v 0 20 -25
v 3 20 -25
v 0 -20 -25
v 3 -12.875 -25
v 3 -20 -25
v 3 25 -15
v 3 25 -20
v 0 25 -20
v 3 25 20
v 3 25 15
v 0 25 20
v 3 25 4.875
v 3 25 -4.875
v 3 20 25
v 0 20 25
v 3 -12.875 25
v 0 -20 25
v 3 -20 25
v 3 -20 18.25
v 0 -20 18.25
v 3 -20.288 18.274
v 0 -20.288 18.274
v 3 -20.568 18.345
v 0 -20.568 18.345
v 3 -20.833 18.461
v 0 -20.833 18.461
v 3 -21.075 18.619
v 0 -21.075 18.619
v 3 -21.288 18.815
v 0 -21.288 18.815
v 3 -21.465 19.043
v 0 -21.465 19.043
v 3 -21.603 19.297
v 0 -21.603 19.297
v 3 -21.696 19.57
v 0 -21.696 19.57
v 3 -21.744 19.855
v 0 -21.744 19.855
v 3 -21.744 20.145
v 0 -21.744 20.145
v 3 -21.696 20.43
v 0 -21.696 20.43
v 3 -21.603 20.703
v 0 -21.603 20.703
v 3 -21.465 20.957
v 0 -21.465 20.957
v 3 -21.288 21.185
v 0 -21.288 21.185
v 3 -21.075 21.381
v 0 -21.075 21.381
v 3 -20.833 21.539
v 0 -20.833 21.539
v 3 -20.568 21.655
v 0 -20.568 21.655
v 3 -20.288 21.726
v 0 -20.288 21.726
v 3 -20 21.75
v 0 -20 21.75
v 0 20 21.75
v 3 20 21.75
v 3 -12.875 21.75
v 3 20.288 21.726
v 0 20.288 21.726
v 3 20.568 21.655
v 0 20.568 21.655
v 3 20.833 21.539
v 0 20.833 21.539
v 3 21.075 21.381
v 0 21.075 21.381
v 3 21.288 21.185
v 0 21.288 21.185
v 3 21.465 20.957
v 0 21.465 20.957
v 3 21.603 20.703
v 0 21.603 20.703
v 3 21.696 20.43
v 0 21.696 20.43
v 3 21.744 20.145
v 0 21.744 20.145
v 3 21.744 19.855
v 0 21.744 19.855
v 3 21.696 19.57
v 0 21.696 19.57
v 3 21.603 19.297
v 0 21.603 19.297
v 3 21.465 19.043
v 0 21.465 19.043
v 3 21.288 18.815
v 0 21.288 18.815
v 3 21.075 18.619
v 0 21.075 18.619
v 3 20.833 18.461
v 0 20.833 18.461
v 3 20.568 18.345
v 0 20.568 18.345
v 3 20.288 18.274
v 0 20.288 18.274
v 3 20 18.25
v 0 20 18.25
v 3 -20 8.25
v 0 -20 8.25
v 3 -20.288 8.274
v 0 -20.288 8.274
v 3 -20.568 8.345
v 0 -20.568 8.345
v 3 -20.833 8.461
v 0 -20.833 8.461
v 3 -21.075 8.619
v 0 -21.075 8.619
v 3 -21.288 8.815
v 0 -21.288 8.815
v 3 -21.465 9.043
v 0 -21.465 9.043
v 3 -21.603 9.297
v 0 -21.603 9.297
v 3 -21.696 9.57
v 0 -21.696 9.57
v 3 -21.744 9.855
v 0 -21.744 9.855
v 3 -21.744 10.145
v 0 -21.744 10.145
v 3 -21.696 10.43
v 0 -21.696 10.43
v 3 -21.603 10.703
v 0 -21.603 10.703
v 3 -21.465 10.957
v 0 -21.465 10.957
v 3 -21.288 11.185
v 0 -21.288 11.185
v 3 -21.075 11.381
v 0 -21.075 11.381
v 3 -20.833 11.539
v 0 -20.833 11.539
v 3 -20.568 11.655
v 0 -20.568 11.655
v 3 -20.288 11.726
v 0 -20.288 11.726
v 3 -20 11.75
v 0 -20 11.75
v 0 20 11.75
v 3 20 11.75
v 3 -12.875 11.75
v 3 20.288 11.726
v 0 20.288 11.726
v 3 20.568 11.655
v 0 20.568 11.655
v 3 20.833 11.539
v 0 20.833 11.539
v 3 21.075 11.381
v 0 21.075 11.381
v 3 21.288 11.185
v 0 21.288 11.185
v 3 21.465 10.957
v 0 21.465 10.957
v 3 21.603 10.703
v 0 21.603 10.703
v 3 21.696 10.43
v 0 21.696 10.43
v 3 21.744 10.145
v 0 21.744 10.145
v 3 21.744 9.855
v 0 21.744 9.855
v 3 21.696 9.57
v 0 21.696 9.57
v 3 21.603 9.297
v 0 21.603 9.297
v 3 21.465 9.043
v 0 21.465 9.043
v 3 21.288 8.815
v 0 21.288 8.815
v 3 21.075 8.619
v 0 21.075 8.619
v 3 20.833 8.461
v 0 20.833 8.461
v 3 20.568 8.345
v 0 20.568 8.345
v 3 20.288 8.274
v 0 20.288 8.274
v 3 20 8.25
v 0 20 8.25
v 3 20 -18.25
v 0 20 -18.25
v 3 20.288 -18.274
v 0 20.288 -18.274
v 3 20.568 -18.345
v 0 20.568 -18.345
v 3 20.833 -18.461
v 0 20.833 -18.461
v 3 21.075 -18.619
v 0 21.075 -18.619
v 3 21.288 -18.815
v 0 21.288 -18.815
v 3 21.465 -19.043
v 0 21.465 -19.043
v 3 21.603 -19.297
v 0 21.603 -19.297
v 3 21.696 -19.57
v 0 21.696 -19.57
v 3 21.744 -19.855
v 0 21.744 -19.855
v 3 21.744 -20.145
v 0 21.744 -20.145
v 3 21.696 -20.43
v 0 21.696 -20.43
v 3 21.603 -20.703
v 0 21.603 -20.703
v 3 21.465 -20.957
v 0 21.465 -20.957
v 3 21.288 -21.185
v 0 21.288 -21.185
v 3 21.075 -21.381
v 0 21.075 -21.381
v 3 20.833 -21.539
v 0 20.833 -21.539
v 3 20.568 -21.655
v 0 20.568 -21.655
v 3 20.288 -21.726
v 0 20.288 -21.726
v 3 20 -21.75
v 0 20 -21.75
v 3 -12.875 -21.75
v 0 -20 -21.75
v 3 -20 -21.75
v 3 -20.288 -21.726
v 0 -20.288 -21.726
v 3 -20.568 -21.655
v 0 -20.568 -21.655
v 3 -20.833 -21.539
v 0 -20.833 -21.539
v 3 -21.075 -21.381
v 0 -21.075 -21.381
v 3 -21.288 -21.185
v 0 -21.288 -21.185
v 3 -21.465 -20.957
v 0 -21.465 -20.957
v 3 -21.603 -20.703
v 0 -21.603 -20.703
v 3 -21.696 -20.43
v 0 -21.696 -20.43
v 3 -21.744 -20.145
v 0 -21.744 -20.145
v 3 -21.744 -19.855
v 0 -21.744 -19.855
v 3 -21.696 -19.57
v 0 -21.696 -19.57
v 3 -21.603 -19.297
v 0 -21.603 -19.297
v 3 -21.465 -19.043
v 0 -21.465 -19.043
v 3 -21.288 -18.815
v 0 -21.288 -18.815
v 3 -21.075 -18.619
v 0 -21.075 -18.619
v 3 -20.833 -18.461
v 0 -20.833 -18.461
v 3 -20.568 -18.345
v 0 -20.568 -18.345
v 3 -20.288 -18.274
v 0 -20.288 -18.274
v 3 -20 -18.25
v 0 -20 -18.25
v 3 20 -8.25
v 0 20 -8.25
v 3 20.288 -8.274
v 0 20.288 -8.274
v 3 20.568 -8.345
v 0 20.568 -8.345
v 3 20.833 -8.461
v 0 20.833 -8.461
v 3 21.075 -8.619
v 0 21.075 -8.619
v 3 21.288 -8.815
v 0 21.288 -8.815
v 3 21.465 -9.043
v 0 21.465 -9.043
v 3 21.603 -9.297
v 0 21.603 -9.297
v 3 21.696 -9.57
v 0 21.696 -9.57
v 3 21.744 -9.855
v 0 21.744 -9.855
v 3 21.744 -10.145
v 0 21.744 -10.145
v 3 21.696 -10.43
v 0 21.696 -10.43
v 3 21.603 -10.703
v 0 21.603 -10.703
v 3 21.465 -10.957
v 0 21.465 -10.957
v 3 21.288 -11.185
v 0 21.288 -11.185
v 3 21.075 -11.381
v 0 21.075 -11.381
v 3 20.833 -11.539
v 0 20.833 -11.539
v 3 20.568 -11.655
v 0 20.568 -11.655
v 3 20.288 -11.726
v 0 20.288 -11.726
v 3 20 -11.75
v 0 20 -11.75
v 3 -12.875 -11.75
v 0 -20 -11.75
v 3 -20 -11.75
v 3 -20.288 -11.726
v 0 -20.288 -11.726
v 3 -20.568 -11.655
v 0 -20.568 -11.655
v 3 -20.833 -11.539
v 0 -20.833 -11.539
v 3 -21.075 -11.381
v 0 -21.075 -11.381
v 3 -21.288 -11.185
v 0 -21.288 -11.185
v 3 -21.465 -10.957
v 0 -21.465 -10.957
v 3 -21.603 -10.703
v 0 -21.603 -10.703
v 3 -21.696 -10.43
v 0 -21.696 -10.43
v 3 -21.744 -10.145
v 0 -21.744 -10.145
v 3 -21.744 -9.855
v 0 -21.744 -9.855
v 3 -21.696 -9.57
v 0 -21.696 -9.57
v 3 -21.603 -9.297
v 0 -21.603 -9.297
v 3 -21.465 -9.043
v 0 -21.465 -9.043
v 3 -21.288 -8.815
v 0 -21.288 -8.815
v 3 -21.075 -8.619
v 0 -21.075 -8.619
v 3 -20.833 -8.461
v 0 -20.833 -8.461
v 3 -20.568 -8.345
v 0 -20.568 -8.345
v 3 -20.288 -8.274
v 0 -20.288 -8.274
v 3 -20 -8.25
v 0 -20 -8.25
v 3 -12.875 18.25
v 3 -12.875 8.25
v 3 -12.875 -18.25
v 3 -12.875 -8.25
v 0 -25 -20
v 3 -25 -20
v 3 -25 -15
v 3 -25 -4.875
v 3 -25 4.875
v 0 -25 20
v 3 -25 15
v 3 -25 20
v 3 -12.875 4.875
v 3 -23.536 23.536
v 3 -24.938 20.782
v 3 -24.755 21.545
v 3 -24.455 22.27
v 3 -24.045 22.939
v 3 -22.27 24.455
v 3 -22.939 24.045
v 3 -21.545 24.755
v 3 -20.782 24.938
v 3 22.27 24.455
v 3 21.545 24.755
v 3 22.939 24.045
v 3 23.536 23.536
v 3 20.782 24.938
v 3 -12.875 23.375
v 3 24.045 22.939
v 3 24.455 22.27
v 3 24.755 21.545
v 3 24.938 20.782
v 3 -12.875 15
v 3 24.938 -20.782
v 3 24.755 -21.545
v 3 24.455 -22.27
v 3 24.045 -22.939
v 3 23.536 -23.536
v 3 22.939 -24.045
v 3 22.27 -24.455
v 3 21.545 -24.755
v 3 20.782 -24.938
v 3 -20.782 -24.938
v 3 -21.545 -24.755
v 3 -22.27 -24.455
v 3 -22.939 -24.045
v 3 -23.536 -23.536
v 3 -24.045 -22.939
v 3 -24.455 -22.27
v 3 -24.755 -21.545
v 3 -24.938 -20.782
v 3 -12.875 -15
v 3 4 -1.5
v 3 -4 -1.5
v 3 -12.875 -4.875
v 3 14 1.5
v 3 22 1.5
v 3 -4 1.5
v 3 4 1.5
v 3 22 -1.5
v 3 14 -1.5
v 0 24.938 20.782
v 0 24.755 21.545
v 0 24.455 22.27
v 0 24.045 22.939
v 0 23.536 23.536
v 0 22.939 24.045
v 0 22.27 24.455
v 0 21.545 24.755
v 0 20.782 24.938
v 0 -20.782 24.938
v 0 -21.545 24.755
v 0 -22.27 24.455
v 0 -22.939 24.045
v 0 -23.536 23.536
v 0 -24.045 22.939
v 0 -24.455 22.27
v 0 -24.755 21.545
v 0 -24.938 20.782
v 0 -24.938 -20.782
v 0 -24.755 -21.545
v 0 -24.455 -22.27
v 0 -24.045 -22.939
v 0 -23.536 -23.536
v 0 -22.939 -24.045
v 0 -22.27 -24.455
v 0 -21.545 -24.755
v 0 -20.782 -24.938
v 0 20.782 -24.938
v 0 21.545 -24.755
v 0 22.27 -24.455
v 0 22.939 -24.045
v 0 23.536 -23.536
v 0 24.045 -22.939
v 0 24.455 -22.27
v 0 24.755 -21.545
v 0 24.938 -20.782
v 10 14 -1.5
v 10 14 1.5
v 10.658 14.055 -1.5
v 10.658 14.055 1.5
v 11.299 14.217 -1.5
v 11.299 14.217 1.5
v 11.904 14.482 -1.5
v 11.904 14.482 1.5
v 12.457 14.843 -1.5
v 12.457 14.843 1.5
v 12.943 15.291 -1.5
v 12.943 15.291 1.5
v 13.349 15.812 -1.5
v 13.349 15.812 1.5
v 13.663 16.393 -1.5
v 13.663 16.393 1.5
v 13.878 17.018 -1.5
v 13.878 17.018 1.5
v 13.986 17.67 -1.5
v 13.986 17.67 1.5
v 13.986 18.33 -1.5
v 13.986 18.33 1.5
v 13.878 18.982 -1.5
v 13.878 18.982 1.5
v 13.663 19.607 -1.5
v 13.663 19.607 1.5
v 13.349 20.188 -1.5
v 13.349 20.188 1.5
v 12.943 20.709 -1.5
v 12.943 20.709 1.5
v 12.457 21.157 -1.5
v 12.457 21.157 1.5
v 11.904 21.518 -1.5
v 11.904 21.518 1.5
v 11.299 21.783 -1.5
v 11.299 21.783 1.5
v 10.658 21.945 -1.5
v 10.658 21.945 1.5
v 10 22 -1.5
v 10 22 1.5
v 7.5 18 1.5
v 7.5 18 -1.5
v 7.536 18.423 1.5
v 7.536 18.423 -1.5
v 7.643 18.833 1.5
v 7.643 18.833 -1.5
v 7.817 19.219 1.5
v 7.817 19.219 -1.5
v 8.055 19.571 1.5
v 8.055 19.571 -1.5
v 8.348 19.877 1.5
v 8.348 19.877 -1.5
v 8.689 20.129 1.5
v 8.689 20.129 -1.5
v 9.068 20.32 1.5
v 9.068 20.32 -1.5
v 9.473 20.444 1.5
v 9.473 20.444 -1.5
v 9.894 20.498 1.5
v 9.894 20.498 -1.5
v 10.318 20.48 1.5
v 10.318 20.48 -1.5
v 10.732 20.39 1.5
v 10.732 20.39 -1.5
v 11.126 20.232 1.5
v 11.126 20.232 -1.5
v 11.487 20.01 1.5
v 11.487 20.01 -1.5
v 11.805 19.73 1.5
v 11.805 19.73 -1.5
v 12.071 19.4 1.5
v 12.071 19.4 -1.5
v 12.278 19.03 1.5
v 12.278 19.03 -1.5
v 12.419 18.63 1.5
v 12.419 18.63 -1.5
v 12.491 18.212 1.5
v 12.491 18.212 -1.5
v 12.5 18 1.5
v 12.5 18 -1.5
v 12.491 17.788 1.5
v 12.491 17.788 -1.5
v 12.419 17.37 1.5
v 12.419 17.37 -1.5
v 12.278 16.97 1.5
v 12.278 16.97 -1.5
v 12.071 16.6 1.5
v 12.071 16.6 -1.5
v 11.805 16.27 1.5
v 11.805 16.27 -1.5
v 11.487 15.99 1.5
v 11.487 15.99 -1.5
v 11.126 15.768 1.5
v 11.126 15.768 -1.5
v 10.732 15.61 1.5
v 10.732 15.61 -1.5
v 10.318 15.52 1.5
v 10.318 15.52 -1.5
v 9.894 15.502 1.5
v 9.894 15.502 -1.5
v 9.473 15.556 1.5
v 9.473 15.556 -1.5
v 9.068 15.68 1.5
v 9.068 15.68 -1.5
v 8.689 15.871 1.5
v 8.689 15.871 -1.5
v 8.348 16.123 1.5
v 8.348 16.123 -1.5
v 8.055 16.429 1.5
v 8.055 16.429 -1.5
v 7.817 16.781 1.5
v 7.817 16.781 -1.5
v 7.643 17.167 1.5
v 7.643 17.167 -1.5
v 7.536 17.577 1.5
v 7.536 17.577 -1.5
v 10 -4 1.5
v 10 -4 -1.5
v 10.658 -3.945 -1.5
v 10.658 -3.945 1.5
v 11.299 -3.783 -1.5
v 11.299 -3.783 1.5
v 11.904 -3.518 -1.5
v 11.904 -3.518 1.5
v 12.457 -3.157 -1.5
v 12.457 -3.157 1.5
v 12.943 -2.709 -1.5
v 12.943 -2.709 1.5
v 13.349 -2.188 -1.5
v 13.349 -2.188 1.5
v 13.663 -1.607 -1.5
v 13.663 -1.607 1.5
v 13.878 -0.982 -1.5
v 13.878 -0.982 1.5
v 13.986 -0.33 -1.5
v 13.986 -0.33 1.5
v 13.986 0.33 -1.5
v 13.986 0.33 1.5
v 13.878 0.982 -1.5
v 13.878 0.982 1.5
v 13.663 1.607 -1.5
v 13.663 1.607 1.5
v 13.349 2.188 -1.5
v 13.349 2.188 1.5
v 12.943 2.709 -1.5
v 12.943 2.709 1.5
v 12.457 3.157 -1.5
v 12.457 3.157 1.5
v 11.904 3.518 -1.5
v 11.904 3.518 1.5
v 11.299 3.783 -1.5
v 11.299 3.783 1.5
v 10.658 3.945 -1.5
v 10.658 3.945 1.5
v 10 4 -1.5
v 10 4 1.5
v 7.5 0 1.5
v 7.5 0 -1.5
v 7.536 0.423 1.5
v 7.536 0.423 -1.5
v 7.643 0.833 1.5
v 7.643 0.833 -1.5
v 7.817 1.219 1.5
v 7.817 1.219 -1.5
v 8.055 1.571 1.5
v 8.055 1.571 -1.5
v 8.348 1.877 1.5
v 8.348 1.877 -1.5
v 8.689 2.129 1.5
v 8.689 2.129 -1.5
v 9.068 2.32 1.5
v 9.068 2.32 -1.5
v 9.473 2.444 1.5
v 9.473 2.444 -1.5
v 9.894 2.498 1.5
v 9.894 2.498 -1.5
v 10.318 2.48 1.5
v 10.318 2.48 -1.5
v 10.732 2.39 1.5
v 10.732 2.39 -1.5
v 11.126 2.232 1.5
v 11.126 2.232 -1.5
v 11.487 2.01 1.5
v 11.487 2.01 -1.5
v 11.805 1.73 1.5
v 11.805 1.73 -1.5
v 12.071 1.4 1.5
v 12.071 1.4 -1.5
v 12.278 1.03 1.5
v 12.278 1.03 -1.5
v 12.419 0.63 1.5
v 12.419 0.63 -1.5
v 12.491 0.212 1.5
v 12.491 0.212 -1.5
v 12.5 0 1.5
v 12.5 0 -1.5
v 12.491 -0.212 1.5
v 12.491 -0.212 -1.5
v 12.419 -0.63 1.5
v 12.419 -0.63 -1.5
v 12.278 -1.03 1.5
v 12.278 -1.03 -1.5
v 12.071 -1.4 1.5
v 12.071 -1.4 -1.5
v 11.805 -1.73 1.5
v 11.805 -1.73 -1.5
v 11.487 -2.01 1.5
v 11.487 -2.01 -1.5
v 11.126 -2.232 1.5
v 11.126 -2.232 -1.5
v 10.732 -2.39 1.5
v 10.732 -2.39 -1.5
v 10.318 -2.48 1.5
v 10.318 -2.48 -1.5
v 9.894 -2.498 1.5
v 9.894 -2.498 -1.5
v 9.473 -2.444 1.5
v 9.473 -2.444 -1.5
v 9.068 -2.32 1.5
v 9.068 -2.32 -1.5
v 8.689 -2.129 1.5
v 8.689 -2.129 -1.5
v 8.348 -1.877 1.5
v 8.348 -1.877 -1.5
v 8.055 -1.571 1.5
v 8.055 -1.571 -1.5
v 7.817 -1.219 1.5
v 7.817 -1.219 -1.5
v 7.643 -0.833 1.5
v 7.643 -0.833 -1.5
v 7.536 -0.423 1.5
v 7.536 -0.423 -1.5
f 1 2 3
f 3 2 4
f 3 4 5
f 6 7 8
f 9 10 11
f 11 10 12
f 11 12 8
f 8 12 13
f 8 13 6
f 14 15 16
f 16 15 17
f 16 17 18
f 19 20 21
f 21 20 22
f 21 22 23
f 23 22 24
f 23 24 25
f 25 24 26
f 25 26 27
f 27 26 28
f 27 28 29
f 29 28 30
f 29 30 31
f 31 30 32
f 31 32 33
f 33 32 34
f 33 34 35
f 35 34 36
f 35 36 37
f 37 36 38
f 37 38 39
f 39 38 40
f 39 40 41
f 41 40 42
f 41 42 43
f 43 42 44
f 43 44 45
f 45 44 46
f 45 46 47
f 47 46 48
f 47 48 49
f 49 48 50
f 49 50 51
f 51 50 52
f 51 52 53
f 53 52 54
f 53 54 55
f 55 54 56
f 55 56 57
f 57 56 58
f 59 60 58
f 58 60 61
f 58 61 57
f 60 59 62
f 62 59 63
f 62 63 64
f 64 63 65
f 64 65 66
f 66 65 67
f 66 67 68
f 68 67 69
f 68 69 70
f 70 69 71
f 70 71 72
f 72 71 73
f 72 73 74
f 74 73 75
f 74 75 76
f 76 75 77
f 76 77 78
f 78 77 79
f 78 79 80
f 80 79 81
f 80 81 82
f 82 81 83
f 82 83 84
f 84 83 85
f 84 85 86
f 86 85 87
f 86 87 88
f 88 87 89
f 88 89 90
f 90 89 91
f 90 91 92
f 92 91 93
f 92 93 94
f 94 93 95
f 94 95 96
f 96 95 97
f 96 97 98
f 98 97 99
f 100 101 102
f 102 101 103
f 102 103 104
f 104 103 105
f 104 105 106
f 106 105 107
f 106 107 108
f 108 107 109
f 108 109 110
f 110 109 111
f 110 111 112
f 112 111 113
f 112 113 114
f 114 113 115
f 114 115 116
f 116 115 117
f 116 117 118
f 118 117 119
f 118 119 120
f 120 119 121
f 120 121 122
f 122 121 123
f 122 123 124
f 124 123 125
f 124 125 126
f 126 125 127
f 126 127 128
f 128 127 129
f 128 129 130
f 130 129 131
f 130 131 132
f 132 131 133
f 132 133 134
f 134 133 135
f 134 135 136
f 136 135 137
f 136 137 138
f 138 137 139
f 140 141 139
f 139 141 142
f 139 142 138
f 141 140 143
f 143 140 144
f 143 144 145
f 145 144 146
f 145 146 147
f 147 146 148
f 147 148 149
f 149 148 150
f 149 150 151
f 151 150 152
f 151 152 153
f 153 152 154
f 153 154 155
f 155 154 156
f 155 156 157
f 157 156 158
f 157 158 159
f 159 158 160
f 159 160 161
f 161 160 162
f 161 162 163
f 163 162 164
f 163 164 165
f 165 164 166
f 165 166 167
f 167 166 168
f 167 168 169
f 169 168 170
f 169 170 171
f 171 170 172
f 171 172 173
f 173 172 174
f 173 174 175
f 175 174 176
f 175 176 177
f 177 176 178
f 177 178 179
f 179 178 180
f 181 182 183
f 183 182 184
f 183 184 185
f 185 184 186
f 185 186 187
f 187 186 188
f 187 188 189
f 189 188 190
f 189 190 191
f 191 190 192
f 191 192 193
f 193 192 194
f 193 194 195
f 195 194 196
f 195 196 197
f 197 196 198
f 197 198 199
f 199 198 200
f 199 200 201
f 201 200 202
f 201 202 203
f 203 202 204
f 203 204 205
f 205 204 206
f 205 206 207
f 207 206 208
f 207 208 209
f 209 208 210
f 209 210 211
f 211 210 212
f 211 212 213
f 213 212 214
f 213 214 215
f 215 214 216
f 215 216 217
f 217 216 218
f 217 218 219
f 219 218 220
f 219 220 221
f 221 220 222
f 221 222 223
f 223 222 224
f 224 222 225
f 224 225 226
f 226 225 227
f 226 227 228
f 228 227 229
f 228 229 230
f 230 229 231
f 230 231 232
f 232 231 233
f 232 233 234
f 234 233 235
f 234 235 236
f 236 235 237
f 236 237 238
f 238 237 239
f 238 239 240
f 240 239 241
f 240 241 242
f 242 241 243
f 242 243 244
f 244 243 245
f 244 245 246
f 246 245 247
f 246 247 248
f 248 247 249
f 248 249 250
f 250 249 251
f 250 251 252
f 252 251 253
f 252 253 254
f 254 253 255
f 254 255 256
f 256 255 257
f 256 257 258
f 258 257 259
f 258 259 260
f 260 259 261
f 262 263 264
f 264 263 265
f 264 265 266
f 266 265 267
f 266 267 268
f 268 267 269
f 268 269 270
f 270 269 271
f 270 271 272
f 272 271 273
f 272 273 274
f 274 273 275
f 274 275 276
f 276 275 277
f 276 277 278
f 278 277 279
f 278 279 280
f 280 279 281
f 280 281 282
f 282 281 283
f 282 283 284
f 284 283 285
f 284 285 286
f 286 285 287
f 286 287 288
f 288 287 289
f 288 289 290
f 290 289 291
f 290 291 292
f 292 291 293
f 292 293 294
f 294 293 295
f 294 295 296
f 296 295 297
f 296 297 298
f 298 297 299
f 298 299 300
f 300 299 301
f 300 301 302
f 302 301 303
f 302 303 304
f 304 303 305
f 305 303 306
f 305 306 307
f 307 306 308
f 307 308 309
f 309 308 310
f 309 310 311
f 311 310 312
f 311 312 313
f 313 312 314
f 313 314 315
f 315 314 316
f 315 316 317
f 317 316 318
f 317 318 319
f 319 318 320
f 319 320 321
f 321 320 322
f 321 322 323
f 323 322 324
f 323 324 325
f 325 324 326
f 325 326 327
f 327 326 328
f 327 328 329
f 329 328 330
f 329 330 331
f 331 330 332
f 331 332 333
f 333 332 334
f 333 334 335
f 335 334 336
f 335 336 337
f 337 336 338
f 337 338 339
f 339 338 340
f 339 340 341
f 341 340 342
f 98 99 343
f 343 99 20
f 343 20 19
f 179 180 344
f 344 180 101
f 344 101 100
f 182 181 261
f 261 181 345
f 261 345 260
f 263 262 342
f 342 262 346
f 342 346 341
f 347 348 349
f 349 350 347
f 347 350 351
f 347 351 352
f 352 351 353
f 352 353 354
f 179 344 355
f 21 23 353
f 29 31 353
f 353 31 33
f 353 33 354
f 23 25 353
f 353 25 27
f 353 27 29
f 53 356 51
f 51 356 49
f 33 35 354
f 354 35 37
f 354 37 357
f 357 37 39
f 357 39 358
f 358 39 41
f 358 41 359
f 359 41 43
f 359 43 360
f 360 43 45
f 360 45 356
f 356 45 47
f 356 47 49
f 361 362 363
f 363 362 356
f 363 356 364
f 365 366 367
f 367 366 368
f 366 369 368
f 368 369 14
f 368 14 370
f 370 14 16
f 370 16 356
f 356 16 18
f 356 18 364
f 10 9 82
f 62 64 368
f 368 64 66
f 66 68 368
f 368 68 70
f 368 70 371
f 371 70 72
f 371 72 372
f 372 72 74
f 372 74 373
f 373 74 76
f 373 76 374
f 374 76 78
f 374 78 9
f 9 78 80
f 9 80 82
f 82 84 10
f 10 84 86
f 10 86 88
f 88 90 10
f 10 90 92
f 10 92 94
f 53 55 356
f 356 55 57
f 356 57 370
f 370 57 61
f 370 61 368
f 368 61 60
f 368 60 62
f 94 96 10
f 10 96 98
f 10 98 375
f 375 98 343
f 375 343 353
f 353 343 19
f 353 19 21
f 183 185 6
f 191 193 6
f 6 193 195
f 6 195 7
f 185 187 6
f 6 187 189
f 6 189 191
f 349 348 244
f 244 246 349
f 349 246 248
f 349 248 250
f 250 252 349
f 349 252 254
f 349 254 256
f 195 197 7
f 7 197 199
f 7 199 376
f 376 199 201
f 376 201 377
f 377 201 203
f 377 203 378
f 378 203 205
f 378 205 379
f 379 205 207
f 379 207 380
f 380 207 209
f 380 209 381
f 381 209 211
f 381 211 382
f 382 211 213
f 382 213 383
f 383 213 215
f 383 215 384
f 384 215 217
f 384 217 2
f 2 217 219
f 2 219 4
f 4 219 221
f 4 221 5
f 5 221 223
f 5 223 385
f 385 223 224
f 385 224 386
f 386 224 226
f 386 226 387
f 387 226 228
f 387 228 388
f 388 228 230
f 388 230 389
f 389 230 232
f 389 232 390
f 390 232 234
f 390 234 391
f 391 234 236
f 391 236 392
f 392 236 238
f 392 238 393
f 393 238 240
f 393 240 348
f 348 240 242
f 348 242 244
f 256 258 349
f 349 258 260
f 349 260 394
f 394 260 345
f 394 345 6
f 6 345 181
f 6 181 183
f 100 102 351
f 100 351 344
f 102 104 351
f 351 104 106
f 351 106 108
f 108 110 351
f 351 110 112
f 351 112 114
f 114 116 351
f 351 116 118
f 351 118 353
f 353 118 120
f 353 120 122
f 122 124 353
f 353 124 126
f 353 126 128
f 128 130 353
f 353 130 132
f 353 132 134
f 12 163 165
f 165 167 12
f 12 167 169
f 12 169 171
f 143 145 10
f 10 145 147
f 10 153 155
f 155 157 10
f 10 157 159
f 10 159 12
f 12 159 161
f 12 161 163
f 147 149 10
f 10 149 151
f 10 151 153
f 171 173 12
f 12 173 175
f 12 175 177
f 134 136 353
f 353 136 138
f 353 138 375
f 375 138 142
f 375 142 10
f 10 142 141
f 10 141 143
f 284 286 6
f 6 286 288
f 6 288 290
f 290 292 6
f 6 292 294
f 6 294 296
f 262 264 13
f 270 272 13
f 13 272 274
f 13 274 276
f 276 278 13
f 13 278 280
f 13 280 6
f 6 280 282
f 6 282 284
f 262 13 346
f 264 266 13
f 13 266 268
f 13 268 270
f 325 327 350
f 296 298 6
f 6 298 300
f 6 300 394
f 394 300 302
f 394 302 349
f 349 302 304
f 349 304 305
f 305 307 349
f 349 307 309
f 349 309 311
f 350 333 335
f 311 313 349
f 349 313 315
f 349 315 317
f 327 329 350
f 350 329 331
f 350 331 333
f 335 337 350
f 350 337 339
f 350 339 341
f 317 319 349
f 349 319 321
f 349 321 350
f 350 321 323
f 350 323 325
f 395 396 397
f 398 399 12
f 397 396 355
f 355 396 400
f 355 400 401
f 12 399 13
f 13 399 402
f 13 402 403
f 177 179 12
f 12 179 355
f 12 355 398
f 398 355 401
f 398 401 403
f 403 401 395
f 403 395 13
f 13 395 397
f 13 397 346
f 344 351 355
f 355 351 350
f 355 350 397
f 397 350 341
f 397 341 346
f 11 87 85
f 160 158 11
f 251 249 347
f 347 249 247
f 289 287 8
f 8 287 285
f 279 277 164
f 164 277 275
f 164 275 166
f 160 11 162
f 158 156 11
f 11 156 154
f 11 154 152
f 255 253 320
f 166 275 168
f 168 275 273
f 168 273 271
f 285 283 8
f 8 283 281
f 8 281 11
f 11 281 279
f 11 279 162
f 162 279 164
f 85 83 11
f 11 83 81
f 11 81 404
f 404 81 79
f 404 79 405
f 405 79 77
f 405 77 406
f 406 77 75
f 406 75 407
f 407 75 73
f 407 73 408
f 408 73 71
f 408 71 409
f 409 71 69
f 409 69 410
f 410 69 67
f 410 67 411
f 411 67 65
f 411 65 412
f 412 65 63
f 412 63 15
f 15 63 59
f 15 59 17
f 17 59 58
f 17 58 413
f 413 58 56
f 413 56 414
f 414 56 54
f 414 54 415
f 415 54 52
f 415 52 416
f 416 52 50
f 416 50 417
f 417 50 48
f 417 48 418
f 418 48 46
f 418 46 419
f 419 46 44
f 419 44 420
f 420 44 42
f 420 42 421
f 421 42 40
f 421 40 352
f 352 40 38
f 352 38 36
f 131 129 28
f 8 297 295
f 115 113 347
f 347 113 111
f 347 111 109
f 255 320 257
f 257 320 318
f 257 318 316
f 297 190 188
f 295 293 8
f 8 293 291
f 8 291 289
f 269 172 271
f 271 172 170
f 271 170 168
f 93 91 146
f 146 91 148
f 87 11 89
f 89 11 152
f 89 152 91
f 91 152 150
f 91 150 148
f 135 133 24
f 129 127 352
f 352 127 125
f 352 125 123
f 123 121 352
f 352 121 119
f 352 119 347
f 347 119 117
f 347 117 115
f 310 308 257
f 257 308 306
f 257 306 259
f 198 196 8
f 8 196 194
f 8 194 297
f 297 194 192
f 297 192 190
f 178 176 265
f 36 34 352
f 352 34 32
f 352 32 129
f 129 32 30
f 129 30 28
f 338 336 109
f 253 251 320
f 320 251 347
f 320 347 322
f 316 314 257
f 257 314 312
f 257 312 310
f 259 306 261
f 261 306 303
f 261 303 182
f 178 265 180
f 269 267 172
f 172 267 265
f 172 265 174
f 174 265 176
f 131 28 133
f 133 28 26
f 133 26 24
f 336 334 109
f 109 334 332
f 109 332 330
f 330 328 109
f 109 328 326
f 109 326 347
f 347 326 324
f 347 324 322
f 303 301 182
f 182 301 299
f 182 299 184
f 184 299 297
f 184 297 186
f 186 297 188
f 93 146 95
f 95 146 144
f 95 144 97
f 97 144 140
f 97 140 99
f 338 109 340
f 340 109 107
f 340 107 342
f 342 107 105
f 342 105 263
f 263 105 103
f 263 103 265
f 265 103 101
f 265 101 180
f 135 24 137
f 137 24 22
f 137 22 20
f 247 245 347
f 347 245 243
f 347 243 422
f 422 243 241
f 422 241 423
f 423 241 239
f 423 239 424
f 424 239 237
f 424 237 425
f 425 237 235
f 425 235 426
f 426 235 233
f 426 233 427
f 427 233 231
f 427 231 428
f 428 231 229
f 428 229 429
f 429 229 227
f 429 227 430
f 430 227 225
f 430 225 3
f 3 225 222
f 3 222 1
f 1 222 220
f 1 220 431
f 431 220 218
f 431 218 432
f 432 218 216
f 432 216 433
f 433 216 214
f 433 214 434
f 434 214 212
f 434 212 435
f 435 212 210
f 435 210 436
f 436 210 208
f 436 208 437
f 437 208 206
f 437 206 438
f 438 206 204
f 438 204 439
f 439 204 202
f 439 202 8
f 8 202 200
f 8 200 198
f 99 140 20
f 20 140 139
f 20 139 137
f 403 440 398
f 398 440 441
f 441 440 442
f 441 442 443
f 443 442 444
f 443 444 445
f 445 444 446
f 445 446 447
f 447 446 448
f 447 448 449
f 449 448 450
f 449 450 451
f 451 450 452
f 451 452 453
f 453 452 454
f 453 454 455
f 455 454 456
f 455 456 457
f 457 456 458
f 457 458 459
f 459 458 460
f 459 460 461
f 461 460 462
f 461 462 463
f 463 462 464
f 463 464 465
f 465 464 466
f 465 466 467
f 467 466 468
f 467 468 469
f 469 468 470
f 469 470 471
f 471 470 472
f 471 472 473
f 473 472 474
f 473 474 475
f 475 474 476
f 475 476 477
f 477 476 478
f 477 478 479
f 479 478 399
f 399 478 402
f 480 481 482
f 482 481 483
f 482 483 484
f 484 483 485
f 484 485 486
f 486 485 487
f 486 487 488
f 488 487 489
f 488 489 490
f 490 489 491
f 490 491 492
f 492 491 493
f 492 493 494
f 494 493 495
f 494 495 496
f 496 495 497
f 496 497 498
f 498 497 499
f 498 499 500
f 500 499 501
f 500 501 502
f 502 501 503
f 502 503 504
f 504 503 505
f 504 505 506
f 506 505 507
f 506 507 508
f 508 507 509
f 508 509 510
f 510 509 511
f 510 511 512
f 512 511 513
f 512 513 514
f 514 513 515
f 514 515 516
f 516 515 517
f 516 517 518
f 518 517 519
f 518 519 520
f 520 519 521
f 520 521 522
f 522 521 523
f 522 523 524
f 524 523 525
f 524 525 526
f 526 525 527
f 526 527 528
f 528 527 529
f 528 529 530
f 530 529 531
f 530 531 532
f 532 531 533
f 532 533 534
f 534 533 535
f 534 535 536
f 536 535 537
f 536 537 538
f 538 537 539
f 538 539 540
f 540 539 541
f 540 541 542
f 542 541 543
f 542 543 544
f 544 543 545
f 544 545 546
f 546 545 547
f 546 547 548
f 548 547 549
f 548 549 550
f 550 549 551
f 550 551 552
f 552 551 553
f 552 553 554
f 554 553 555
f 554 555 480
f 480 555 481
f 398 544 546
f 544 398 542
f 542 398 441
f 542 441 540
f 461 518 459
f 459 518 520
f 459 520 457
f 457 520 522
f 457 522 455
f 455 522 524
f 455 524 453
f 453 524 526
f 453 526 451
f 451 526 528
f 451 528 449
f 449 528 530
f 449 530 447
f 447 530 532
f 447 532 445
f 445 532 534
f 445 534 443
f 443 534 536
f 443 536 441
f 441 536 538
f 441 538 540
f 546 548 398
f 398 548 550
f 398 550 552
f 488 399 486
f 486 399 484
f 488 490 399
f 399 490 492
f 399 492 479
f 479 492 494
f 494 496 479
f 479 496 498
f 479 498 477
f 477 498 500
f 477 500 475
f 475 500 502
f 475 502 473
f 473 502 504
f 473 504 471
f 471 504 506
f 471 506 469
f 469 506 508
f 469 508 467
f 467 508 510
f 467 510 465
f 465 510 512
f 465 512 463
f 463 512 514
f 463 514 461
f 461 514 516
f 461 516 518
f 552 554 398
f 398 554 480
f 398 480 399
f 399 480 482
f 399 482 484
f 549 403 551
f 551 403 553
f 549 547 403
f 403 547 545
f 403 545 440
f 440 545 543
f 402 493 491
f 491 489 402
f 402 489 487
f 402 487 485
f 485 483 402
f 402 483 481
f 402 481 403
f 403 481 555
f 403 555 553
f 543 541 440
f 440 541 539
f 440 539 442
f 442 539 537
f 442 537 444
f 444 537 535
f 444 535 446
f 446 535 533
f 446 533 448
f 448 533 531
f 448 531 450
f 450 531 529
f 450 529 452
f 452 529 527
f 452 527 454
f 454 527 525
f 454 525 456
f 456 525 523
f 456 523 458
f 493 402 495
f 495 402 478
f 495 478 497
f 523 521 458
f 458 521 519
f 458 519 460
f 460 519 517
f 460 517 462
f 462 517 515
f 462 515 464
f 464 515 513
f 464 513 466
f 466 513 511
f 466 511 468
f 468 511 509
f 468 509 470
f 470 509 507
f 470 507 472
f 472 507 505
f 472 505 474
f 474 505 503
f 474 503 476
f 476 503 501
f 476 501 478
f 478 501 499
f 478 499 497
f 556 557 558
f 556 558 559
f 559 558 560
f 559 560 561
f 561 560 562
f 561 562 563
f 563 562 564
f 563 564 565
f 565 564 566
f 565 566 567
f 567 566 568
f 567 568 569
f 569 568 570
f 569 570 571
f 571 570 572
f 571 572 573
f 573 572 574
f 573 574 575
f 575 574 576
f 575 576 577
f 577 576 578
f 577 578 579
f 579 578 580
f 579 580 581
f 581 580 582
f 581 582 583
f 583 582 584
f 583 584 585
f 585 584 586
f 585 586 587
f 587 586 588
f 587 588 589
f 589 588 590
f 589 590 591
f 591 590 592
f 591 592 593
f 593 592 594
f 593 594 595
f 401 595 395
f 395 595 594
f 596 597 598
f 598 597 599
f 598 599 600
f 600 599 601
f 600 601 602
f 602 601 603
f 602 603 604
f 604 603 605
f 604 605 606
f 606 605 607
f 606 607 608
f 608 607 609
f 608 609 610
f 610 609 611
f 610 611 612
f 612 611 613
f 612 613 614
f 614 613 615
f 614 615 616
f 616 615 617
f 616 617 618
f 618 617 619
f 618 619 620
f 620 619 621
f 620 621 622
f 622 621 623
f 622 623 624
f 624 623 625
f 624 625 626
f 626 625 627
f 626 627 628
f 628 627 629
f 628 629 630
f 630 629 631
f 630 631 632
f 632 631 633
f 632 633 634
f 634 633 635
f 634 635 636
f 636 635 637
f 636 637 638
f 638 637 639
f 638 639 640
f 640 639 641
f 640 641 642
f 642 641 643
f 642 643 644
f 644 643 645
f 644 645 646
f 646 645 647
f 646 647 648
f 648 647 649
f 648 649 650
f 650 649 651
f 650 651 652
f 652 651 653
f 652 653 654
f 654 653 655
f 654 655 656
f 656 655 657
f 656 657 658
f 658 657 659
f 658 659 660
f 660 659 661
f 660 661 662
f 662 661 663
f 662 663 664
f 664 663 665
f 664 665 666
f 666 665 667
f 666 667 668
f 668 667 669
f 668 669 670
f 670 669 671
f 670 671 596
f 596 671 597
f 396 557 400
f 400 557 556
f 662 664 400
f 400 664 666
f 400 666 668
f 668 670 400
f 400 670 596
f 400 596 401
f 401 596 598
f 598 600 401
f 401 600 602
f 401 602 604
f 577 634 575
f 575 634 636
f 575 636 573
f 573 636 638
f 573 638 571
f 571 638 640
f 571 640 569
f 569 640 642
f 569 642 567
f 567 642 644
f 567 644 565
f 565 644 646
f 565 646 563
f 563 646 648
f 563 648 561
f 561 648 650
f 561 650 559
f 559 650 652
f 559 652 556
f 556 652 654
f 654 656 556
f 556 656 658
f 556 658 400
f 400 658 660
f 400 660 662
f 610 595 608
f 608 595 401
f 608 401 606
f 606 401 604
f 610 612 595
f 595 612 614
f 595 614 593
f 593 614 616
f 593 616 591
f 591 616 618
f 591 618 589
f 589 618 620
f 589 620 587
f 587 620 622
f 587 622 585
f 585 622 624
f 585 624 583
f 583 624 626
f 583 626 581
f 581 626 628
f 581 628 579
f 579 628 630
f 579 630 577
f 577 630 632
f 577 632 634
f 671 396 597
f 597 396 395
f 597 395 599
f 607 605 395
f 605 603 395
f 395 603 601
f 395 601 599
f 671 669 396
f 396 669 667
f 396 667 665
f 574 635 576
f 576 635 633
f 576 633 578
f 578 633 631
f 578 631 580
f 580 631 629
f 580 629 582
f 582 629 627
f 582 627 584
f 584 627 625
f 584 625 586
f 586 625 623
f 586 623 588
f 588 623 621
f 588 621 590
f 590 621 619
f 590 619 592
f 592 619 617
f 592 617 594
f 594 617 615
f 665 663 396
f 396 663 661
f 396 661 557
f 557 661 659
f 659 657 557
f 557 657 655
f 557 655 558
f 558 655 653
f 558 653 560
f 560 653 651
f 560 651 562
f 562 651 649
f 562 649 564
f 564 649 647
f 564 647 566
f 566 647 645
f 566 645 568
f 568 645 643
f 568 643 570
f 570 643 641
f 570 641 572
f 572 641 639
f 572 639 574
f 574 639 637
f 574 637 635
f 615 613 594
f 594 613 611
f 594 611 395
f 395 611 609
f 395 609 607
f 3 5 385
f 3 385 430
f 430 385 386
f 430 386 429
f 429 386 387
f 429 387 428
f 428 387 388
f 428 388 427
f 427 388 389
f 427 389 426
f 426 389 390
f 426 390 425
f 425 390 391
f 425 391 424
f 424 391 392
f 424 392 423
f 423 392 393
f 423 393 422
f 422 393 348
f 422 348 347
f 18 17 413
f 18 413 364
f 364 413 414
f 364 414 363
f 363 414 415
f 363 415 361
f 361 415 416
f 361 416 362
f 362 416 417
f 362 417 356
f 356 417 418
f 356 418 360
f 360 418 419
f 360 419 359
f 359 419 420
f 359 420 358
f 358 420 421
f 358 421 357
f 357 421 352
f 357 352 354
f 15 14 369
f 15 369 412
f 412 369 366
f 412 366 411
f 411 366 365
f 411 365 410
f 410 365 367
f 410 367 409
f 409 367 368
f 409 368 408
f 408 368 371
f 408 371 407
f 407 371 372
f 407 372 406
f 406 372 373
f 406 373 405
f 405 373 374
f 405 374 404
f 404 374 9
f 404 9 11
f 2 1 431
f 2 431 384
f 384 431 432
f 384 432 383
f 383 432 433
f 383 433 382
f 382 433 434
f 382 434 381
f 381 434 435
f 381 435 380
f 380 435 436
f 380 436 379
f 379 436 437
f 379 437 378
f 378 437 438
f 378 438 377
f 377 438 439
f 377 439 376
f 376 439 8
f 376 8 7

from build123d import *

# Parameters (mm, degrees)
SKETCH_1_W      = 50
SKETCH_1_H      = 50
SKETCH_1_R      = 1.75
EXTRUDE_1_DEPTH = 3
SKETCH_2_R      = 4
SKETCH_2_R_2    = 2.5
EXTRUDE_2_DEPTH = 1.5
FILLET_1_R      = 5


with BuildPart() as part:
    # 草图1 → 凸台-拉伸1 (new body)
    # profile 1 of 4: a face of its own
    with BuildSketch(Plane(origin=(0, 0, 0), x_dir=(0, 0, -1), z_dir=(1, 0, 0))):
        Rectangle(SKETCH_1_W, SKETCH_1_H)
        with BuildLine():
            Line((-21.75, -20), (-21.75, 20))
            ThreePointArc((-21.75, 20), (-20, 21.75), (-18.25, 20))
            Line((-18.25, 20), (-18.25, -20))
            ThreePointArc((-18.25, -20), (-20, -21.75), (-21.75, -20))
        make_face(mode=Mode.SUBTRACT)
        with BuildLine():
            Line((-11.75, -20), (-11.75, 20))
            ThreePointArc((-11.75, 20), (-10, 21.75), (-8.25, 20))
            Line((-8.25, 20), (-8.25, -20))
            ThreePointArc((-8.25, -20), (-10, -21.75), (-11.75, -20))
        make_face(mode=Mode.SUBTRACT)
        with BuildLine():
            Line((-1.75, -20), (-1.75, 20))
            ThreePointArc((-1.75, 20), (0, 21.75), (1.75, 20))
            Line((1.75, 20), (1.75, -20))
            ThreePointArc((1.75, -20), (0, -21.75), (-1.75, -20))
        make_face(mode=Mode.SUBTRACT)
        with BuildLine():
            Line((8.25, -20), (8.25, 20))
            ThreePointArc((8.25, 20), (10, 21.75), (11.75, 20))
            Line((11.75, 20), (11.75, -20))
            ThreePointArc((11.75, -20), (10, -21.75), (8.25, -20))
        make_face(mode=Mode.SUBTRACT)
        with BuildLine():
            Line((18.25, -20), (18.25, 20))
            ThreePointArc((18.25, 20), (20, 21.75), (21.75, 20))
            Line((21.75, 20), (21.75, -20))
            ThreePointArc((21.75, -20), (20, -21.75), (18.25, -20))
        make_face(mode=Mode.SUBTRACT)
    # profile 2 of 4: a face of its own
    with BuildSketch(Plane(origin=(0, 0, 0), x_dir=(0, 0, -1), z_dir=(1, 0, 0))):
        with BuildLine():
            ThreePointArc((1.75, 20), (0, 18.25), (-1.75, 20))
            Line((-1.75, 20), (-1.75, -20))
            ThreePointArc((-1.75, -20), (0, -18.25), (1.75, -20))
            Line((1.75, -20), (1.75, 20))
        make_face()
    # profile 3 of 4: a face of its own
    with BuildSketch(Plane(origin=(0, 0, 0), x_dir=(0, 0, -1), z_dir=(1, 0, 0))):
        with Locations((0, 20)):
            Circle(SKETCH_1_R)
    # profile 4 of 4: a face of its own
    with BuildSketch(Plane(origin=(0, 0, 0), x_dir=(0, 0, -1), z_dir=(1, 0, 0))):
        with Locations((0, -20)):
            Circle(SKETCH_1_R)
    extrude(amount=EXTRUDE_1_DEPTH)

    # 草图2 → 凸台-拉伸2 (add, symmetric)
    # profile 1 of 4: a face of its own
    with BuildSketch(Plane.XY):
        with BuildLine():
            Line((0, 14), (10, 14))
            ThreePointArc((10, 14), (6, 18), (10, 22))
            Line((10, 22), (0, 22))
            Line((0, 22), (0, 14))
        make_face()
    # profile 2 of 4: a face of its own
    with BuildSketch(Plane.XY):
        with Locations((10, 18)):
            Circle(SKETCH_2_R)
        with Locations((10, 18)):
            Circle(SKETCH_2_R_2, mode=Mode.SUBTRACT)
    # profile 3 of 4: a face of its own
    with BuildSketch(Plane.XY):
        with Locations((10, 0)):
            Circle(SKETCH_2_R)
        with Locations((10, 0)):
            Circle(SKETCH_2_R_2, mode=Mode.SUBTRACT)
    # profile 4 of 4: a face of its own
    with BuildSketch(Plane.XY):
        with BuildLine():
            Line((0, -4), (10, -4))
            ThreePointArc((10, -4), (6, 0), (10, 4))
            Line((10, 4), (0, 4))
            Line((0, 4), (0, -4))
        make_face()
    extrude(amount=EXTRUDE_2_DEPTH, both=True)

    # 圆角1
    fillet_1_edges = [part.edges().sort_by_distance(p)[0] for p in [
        (1.5, -25, -25),
        (1.5, -25, 25),
        (1.5, 25, 25),
        (1.5, 25, -25),
    ]]
    fillet(fillet_1_edges, radius=FILLET_1_R)


solid = part.part
